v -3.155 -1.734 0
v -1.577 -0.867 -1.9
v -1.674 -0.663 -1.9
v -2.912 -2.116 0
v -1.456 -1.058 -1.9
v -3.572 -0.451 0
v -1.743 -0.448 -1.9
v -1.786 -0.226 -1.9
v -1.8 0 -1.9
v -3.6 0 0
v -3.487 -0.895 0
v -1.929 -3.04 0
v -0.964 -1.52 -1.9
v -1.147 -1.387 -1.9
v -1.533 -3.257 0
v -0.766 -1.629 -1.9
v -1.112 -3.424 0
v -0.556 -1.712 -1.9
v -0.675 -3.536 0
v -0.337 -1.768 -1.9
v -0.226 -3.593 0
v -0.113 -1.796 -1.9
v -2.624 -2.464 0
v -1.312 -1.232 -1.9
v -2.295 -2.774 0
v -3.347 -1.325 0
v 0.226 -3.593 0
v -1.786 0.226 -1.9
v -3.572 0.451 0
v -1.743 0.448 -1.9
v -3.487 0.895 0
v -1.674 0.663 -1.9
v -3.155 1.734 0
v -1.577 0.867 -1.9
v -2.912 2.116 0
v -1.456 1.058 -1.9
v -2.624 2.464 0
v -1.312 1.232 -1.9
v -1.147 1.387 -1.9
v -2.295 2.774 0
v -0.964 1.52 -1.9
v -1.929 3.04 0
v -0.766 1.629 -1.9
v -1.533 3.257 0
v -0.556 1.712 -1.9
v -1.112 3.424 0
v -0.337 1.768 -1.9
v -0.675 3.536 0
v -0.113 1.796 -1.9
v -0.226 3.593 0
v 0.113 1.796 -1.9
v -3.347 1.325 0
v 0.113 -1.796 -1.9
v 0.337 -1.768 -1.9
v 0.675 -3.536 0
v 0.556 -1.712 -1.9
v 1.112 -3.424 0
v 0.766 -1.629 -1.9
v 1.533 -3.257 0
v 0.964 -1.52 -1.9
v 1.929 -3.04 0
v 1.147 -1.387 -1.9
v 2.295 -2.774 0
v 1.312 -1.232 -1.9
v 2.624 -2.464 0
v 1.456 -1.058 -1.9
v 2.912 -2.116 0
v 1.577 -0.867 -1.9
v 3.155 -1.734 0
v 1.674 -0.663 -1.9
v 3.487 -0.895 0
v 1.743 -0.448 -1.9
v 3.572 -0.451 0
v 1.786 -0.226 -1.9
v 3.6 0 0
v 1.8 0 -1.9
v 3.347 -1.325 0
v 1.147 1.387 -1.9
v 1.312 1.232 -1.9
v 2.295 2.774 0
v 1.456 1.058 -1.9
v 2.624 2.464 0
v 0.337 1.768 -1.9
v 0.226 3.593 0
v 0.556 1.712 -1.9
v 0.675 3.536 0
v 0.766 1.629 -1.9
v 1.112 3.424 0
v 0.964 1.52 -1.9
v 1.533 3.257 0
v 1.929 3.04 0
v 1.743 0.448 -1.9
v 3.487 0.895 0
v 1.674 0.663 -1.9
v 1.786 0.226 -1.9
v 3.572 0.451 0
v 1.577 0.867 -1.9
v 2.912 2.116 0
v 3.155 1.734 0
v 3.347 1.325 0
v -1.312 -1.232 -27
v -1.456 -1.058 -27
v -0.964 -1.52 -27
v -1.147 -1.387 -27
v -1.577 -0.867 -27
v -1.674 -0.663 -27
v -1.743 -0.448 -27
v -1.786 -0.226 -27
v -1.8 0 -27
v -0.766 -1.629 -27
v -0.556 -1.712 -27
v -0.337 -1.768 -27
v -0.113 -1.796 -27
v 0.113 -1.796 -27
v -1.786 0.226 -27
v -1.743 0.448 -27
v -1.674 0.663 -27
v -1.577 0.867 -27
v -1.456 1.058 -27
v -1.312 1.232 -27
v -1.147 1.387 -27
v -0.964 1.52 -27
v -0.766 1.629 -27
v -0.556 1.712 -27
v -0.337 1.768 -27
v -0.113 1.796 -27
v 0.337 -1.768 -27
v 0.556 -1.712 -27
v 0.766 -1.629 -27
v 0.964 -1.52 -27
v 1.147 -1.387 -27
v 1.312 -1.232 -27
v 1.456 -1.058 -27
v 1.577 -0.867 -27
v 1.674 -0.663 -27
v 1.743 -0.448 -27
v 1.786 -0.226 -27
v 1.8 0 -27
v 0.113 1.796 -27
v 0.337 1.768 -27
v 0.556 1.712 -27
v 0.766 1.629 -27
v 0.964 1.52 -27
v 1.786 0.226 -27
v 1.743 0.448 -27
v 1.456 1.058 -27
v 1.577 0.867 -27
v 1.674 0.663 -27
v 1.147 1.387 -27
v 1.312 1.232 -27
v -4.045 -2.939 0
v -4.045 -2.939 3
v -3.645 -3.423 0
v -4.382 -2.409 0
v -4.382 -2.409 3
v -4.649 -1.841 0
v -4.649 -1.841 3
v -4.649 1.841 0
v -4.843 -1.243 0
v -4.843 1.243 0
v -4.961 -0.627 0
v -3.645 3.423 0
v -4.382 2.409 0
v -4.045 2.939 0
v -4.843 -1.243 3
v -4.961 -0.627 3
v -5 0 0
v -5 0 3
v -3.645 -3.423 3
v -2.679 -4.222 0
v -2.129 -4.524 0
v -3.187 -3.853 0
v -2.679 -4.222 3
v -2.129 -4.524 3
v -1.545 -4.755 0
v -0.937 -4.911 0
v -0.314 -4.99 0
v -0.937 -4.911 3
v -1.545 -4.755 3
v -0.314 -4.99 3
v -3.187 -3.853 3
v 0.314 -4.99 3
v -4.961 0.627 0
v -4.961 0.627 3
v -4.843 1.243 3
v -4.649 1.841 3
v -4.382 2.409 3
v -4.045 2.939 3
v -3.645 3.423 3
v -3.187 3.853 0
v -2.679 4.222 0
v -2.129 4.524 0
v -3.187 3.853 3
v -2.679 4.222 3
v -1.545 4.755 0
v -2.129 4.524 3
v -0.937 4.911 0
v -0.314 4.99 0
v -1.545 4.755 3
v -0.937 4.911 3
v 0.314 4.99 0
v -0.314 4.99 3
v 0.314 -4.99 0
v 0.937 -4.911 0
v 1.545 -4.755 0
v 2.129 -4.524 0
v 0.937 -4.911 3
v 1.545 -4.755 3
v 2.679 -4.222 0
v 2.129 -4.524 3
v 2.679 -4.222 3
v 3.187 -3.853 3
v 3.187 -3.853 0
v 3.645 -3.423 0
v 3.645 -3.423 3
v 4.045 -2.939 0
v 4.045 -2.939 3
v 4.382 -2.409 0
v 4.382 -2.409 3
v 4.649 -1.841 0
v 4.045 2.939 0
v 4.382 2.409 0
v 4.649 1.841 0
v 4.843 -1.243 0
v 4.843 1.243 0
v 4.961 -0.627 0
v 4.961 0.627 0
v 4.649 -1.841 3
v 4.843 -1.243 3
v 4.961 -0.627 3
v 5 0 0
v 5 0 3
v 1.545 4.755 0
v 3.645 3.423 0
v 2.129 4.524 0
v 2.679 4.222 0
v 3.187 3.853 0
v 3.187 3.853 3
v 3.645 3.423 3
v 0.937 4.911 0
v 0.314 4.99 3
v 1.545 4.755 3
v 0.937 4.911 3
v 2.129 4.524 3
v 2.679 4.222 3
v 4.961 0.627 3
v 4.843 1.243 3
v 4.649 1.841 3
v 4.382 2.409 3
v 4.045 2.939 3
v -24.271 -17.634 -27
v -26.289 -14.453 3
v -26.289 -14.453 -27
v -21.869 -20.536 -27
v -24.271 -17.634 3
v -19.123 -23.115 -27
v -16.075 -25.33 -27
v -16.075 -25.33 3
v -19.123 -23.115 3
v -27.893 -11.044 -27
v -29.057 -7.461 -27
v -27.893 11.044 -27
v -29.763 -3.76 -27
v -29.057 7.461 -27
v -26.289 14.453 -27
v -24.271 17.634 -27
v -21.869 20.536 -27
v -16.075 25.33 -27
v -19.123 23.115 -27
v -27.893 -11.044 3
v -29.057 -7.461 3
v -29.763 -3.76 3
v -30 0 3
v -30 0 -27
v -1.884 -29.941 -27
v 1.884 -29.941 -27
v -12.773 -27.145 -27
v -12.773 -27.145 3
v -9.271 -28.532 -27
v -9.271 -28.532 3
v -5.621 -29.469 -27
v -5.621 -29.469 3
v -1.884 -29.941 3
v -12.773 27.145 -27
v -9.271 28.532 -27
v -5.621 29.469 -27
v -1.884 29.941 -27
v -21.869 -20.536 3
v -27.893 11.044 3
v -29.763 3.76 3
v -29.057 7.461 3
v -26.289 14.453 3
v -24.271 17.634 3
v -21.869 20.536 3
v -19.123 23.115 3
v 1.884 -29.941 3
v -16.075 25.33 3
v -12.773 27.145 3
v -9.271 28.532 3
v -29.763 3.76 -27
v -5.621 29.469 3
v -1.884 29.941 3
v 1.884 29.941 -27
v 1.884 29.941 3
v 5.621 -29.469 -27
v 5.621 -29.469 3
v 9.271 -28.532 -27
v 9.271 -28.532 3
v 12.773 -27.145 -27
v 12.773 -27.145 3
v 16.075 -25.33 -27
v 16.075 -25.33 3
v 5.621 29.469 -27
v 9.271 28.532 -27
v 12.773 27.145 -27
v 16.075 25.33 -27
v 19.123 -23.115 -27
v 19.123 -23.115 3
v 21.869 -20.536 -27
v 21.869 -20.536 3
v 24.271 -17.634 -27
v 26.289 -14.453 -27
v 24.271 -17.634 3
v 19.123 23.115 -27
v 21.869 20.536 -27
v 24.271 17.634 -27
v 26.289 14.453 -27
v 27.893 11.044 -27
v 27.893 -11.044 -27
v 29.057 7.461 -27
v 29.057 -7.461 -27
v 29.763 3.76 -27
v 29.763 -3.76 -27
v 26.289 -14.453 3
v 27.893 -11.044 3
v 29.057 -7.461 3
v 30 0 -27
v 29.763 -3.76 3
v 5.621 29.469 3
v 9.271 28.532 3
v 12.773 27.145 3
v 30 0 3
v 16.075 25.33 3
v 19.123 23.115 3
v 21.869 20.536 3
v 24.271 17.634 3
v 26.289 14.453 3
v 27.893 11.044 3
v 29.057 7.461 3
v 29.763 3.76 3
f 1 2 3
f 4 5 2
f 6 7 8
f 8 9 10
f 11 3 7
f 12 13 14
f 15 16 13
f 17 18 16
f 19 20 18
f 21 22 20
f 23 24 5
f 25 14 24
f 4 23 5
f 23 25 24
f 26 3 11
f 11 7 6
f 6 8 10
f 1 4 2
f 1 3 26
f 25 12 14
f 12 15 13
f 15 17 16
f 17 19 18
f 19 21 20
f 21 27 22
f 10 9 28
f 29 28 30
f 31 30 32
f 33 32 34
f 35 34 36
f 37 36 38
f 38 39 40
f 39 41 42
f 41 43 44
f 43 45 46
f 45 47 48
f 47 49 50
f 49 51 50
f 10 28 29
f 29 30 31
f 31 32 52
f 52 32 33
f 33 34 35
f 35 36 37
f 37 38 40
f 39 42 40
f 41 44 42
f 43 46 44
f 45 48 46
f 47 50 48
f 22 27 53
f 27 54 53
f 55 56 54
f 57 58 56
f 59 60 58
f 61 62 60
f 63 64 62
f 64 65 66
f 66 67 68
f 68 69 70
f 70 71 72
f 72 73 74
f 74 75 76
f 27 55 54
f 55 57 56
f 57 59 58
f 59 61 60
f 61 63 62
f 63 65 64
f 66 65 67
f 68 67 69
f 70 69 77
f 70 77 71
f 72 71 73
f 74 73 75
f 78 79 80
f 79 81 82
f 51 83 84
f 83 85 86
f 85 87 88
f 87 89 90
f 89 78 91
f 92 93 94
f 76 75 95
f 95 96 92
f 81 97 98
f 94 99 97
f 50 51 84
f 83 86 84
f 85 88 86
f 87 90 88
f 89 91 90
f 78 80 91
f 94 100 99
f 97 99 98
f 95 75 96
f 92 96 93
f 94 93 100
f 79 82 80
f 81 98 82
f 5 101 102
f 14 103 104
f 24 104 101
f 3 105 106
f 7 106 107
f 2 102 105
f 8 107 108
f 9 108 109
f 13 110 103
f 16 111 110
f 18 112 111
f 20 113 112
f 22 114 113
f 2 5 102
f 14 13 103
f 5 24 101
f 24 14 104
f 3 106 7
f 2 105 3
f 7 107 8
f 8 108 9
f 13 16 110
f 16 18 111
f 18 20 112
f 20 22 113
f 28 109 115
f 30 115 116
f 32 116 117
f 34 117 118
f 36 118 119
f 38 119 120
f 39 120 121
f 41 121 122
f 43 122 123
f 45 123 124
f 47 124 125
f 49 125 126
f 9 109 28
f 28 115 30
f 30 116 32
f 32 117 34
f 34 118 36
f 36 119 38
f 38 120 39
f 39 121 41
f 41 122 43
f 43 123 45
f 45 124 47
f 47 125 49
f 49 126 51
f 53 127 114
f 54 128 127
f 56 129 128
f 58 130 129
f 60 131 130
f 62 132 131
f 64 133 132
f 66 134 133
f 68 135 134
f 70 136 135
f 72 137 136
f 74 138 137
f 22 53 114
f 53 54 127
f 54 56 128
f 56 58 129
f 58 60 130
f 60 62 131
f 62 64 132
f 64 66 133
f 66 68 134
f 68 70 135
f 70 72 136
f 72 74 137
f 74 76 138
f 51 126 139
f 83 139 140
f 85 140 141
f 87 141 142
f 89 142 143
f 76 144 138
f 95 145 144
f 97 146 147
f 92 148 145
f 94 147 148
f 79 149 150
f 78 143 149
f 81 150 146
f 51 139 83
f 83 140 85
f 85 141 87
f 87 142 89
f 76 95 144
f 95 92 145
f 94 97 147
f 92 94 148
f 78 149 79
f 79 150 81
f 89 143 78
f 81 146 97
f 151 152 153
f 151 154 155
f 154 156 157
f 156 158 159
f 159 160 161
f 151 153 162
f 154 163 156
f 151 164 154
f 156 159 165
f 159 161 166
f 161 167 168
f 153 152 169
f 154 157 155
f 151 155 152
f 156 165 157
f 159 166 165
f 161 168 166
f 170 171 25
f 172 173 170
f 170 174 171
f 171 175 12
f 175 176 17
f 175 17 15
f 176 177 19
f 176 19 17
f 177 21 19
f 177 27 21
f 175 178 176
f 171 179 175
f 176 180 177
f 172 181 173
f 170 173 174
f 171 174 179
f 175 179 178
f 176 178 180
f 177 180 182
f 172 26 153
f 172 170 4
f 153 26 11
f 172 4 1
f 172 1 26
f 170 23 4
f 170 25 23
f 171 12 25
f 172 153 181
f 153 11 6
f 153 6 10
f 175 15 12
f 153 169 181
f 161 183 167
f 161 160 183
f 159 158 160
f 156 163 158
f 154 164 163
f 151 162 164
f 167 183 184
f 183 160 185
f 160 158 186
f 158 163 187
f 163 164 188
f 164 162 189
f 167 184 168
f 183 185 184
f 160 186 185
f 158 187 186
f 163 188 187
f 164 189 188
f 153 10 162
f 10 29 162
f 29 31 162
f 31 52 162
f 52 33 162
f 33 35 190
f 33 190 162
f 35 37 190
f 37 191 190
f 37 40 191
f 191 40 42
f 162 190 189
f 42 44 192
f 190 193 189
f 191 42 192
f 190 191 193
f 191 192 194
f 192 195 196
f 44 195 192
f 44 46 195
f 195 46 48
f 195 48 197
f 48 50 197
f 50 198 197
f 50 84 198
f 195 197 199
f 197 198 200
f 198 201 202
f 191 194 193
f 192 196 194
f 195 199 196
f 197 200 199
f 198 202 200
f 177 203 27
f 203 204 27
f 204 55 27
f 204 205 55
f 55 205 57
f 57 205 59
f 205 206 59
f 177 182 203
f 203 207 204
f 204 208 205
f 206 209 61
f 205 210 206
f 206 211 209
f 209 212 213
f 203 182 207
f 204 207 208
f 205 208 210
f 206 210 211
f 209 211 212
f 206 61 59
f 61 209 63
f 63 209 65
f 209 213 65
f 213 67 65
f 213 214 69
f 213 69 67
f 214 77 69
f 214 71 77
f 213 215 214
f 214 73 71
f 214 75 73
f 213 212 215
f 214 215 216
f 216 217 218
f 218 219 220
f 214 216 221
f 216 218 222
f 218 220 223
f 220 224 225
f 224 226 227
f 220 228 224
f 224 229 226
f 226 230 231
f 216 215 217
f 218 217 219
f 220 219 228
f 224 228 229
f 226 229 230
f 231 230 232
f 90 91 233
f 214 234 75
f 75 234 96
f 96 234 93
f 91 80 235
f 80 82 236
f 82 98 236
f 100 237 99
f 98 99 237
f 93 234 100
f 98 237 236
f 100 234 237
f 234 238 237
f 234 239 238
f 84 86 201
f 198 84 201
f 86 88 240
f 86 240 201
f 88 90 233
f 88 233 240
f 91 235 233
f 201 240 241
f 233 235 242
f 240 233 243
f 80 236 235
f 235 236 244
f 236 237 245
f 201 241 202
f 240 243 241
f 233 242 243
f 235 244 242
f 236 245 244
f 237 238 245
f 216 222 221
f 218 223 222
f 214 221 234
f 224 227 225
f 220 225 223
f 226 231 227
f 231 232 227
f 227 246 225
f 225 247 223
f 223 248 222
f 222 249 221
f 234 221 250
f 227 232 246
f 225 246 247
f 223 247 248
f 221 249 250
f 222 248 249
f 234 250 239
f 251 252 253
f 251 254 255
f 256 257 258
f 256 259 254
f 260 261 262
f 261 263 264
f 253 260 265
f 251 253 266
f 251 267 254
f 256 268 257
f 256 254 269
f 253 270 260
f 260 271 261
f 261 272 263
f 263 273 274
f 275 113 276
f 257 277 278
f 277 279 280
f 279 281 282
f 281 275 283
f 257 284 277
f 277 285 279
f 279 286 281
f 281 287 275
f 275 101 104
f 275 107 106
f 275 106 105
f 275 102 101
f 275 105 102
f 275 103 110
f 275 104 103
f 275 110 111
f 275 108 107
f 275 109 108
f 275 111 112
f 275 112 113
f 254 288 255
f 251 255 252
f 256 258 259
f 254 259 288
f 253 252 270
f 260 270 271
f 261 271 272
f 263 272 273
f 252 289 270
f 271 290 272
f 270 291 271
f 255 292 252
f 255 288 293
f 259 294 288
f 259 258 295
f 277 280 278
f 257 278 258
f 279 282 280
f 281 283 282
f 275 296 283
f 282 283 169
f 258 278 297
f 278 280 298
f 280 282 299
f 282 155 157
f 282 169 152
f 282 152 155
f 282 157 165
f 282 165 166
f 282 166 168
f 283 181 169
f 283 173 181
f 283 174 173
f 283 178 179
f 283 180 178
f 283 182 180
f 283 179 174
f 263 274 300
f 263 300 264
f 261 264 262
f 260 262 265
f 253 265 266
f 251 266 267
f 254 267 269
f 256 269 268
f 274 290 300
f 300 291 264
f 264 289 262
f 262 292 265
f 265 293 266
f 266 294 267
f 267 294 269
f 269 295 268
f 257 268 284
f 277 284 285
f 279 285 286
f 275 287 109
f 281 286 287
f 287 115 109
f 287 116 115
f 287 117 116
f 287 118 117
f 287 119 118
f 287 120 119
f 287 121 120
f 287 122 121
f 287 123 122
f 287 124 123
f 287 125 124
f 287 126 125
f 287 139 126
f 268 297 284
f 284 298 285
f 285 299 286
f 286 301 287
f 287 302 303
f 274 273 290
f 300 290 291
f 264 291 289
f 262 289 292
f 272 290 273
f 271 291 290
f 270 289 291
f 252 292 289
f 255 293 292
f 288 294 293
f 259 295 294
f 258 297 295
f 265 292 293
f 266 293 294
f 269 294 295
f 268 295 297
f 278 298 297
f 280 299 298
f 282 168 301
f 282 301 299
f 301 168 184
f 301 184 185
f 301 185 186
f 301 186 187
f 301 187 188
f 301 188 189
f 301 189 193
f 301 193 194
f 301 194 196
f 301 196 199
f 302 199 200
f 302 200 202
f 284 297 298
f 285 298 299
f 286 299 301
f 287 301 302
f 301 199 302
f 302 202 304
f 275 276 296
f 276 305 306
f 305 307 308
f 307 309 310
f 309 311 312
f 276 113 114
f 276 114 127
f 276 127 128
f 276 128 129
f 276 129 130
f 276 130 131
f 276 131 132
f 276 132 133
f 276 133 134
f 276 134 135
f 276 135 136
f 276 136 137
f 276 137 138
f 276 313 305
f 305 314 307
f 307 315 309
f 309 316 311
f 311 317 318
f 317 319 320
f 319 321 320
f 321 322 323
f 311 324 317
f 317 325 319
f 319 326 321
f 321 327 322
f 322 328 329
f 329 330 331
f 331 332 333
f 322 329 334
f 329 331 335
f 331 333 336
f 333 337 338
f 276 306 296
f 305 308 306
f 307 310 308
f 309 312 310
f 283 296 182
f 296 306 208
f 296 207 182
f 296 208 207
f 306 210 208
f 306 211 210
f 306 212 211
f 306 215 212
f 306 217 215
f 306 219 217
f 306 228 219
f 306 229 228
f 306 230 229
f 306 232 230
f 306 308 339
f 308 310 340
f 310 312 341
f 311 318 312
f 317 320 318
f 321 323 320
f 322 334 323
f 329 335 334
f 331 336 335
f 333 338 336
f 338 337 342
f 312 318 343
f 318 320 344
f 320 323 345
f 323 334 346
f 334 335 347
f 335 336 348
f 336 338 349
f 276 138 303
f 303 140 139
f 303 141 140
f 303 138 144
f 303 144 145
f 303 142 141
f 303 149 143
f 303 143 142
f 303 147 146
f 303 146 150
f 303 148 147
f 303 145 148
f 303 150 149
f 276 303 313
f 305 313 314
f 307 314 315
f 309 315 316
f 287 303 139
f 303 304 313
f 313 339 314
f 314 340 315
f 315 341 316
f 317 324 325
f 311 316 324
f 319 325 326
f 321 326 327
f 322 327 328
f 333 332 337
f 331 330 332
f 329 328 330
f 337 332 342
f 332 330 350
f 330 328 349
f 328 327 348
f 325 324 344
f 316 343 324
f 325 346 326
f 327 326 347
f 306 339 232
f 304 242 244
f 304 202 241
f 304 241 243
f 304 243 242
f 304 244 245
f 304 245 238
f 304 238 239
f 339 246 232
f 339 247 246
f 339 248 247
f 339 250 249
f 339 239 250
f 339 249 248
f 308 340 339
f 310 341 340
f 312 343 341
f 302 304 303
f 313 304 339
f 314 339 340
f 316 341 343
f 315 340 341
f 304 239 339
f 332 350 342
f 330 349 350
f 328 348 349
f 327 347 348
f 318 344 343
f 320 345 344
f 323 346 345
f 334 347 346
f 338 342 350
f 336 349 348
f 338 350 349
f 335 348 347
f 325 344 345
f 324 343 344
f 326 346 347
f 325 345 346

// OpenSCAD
$fn = 50;


difference() {
	union() {
		translate(v = [0, 0, -27.0000000000]) {
			cylinder(h = 30, r = 30.0000000000);
		}
	}
	union() {
		translate(v = [0, 0, 0]) {
			rotate(a = [0, 0, 0]) {
				difference() {
					union() {
						translate(v = [0, 0, -30.0000000000]) {
							cylinder(h = 30, r = 1.5000000000);
						}
						translate(v = [0, 0, -1.9000000000]) {
							cylinder(h = 1.9000000000, r1 = 1.8000000000, r2 = 3.6000000000);
						}
						translate(v = [0, 0, -30.0000000000]) {
							cylinder(h = 30, r = 1.8000000000);
						}
						translate(v = [0, 0, -30.0000000000]) {
							cylinder(h = 30, r = 1.5000000000);
						}
					}
					union();
				}
			}
		}
		#cylinder(h = 3, r = 5.0000000000);
	}
}
